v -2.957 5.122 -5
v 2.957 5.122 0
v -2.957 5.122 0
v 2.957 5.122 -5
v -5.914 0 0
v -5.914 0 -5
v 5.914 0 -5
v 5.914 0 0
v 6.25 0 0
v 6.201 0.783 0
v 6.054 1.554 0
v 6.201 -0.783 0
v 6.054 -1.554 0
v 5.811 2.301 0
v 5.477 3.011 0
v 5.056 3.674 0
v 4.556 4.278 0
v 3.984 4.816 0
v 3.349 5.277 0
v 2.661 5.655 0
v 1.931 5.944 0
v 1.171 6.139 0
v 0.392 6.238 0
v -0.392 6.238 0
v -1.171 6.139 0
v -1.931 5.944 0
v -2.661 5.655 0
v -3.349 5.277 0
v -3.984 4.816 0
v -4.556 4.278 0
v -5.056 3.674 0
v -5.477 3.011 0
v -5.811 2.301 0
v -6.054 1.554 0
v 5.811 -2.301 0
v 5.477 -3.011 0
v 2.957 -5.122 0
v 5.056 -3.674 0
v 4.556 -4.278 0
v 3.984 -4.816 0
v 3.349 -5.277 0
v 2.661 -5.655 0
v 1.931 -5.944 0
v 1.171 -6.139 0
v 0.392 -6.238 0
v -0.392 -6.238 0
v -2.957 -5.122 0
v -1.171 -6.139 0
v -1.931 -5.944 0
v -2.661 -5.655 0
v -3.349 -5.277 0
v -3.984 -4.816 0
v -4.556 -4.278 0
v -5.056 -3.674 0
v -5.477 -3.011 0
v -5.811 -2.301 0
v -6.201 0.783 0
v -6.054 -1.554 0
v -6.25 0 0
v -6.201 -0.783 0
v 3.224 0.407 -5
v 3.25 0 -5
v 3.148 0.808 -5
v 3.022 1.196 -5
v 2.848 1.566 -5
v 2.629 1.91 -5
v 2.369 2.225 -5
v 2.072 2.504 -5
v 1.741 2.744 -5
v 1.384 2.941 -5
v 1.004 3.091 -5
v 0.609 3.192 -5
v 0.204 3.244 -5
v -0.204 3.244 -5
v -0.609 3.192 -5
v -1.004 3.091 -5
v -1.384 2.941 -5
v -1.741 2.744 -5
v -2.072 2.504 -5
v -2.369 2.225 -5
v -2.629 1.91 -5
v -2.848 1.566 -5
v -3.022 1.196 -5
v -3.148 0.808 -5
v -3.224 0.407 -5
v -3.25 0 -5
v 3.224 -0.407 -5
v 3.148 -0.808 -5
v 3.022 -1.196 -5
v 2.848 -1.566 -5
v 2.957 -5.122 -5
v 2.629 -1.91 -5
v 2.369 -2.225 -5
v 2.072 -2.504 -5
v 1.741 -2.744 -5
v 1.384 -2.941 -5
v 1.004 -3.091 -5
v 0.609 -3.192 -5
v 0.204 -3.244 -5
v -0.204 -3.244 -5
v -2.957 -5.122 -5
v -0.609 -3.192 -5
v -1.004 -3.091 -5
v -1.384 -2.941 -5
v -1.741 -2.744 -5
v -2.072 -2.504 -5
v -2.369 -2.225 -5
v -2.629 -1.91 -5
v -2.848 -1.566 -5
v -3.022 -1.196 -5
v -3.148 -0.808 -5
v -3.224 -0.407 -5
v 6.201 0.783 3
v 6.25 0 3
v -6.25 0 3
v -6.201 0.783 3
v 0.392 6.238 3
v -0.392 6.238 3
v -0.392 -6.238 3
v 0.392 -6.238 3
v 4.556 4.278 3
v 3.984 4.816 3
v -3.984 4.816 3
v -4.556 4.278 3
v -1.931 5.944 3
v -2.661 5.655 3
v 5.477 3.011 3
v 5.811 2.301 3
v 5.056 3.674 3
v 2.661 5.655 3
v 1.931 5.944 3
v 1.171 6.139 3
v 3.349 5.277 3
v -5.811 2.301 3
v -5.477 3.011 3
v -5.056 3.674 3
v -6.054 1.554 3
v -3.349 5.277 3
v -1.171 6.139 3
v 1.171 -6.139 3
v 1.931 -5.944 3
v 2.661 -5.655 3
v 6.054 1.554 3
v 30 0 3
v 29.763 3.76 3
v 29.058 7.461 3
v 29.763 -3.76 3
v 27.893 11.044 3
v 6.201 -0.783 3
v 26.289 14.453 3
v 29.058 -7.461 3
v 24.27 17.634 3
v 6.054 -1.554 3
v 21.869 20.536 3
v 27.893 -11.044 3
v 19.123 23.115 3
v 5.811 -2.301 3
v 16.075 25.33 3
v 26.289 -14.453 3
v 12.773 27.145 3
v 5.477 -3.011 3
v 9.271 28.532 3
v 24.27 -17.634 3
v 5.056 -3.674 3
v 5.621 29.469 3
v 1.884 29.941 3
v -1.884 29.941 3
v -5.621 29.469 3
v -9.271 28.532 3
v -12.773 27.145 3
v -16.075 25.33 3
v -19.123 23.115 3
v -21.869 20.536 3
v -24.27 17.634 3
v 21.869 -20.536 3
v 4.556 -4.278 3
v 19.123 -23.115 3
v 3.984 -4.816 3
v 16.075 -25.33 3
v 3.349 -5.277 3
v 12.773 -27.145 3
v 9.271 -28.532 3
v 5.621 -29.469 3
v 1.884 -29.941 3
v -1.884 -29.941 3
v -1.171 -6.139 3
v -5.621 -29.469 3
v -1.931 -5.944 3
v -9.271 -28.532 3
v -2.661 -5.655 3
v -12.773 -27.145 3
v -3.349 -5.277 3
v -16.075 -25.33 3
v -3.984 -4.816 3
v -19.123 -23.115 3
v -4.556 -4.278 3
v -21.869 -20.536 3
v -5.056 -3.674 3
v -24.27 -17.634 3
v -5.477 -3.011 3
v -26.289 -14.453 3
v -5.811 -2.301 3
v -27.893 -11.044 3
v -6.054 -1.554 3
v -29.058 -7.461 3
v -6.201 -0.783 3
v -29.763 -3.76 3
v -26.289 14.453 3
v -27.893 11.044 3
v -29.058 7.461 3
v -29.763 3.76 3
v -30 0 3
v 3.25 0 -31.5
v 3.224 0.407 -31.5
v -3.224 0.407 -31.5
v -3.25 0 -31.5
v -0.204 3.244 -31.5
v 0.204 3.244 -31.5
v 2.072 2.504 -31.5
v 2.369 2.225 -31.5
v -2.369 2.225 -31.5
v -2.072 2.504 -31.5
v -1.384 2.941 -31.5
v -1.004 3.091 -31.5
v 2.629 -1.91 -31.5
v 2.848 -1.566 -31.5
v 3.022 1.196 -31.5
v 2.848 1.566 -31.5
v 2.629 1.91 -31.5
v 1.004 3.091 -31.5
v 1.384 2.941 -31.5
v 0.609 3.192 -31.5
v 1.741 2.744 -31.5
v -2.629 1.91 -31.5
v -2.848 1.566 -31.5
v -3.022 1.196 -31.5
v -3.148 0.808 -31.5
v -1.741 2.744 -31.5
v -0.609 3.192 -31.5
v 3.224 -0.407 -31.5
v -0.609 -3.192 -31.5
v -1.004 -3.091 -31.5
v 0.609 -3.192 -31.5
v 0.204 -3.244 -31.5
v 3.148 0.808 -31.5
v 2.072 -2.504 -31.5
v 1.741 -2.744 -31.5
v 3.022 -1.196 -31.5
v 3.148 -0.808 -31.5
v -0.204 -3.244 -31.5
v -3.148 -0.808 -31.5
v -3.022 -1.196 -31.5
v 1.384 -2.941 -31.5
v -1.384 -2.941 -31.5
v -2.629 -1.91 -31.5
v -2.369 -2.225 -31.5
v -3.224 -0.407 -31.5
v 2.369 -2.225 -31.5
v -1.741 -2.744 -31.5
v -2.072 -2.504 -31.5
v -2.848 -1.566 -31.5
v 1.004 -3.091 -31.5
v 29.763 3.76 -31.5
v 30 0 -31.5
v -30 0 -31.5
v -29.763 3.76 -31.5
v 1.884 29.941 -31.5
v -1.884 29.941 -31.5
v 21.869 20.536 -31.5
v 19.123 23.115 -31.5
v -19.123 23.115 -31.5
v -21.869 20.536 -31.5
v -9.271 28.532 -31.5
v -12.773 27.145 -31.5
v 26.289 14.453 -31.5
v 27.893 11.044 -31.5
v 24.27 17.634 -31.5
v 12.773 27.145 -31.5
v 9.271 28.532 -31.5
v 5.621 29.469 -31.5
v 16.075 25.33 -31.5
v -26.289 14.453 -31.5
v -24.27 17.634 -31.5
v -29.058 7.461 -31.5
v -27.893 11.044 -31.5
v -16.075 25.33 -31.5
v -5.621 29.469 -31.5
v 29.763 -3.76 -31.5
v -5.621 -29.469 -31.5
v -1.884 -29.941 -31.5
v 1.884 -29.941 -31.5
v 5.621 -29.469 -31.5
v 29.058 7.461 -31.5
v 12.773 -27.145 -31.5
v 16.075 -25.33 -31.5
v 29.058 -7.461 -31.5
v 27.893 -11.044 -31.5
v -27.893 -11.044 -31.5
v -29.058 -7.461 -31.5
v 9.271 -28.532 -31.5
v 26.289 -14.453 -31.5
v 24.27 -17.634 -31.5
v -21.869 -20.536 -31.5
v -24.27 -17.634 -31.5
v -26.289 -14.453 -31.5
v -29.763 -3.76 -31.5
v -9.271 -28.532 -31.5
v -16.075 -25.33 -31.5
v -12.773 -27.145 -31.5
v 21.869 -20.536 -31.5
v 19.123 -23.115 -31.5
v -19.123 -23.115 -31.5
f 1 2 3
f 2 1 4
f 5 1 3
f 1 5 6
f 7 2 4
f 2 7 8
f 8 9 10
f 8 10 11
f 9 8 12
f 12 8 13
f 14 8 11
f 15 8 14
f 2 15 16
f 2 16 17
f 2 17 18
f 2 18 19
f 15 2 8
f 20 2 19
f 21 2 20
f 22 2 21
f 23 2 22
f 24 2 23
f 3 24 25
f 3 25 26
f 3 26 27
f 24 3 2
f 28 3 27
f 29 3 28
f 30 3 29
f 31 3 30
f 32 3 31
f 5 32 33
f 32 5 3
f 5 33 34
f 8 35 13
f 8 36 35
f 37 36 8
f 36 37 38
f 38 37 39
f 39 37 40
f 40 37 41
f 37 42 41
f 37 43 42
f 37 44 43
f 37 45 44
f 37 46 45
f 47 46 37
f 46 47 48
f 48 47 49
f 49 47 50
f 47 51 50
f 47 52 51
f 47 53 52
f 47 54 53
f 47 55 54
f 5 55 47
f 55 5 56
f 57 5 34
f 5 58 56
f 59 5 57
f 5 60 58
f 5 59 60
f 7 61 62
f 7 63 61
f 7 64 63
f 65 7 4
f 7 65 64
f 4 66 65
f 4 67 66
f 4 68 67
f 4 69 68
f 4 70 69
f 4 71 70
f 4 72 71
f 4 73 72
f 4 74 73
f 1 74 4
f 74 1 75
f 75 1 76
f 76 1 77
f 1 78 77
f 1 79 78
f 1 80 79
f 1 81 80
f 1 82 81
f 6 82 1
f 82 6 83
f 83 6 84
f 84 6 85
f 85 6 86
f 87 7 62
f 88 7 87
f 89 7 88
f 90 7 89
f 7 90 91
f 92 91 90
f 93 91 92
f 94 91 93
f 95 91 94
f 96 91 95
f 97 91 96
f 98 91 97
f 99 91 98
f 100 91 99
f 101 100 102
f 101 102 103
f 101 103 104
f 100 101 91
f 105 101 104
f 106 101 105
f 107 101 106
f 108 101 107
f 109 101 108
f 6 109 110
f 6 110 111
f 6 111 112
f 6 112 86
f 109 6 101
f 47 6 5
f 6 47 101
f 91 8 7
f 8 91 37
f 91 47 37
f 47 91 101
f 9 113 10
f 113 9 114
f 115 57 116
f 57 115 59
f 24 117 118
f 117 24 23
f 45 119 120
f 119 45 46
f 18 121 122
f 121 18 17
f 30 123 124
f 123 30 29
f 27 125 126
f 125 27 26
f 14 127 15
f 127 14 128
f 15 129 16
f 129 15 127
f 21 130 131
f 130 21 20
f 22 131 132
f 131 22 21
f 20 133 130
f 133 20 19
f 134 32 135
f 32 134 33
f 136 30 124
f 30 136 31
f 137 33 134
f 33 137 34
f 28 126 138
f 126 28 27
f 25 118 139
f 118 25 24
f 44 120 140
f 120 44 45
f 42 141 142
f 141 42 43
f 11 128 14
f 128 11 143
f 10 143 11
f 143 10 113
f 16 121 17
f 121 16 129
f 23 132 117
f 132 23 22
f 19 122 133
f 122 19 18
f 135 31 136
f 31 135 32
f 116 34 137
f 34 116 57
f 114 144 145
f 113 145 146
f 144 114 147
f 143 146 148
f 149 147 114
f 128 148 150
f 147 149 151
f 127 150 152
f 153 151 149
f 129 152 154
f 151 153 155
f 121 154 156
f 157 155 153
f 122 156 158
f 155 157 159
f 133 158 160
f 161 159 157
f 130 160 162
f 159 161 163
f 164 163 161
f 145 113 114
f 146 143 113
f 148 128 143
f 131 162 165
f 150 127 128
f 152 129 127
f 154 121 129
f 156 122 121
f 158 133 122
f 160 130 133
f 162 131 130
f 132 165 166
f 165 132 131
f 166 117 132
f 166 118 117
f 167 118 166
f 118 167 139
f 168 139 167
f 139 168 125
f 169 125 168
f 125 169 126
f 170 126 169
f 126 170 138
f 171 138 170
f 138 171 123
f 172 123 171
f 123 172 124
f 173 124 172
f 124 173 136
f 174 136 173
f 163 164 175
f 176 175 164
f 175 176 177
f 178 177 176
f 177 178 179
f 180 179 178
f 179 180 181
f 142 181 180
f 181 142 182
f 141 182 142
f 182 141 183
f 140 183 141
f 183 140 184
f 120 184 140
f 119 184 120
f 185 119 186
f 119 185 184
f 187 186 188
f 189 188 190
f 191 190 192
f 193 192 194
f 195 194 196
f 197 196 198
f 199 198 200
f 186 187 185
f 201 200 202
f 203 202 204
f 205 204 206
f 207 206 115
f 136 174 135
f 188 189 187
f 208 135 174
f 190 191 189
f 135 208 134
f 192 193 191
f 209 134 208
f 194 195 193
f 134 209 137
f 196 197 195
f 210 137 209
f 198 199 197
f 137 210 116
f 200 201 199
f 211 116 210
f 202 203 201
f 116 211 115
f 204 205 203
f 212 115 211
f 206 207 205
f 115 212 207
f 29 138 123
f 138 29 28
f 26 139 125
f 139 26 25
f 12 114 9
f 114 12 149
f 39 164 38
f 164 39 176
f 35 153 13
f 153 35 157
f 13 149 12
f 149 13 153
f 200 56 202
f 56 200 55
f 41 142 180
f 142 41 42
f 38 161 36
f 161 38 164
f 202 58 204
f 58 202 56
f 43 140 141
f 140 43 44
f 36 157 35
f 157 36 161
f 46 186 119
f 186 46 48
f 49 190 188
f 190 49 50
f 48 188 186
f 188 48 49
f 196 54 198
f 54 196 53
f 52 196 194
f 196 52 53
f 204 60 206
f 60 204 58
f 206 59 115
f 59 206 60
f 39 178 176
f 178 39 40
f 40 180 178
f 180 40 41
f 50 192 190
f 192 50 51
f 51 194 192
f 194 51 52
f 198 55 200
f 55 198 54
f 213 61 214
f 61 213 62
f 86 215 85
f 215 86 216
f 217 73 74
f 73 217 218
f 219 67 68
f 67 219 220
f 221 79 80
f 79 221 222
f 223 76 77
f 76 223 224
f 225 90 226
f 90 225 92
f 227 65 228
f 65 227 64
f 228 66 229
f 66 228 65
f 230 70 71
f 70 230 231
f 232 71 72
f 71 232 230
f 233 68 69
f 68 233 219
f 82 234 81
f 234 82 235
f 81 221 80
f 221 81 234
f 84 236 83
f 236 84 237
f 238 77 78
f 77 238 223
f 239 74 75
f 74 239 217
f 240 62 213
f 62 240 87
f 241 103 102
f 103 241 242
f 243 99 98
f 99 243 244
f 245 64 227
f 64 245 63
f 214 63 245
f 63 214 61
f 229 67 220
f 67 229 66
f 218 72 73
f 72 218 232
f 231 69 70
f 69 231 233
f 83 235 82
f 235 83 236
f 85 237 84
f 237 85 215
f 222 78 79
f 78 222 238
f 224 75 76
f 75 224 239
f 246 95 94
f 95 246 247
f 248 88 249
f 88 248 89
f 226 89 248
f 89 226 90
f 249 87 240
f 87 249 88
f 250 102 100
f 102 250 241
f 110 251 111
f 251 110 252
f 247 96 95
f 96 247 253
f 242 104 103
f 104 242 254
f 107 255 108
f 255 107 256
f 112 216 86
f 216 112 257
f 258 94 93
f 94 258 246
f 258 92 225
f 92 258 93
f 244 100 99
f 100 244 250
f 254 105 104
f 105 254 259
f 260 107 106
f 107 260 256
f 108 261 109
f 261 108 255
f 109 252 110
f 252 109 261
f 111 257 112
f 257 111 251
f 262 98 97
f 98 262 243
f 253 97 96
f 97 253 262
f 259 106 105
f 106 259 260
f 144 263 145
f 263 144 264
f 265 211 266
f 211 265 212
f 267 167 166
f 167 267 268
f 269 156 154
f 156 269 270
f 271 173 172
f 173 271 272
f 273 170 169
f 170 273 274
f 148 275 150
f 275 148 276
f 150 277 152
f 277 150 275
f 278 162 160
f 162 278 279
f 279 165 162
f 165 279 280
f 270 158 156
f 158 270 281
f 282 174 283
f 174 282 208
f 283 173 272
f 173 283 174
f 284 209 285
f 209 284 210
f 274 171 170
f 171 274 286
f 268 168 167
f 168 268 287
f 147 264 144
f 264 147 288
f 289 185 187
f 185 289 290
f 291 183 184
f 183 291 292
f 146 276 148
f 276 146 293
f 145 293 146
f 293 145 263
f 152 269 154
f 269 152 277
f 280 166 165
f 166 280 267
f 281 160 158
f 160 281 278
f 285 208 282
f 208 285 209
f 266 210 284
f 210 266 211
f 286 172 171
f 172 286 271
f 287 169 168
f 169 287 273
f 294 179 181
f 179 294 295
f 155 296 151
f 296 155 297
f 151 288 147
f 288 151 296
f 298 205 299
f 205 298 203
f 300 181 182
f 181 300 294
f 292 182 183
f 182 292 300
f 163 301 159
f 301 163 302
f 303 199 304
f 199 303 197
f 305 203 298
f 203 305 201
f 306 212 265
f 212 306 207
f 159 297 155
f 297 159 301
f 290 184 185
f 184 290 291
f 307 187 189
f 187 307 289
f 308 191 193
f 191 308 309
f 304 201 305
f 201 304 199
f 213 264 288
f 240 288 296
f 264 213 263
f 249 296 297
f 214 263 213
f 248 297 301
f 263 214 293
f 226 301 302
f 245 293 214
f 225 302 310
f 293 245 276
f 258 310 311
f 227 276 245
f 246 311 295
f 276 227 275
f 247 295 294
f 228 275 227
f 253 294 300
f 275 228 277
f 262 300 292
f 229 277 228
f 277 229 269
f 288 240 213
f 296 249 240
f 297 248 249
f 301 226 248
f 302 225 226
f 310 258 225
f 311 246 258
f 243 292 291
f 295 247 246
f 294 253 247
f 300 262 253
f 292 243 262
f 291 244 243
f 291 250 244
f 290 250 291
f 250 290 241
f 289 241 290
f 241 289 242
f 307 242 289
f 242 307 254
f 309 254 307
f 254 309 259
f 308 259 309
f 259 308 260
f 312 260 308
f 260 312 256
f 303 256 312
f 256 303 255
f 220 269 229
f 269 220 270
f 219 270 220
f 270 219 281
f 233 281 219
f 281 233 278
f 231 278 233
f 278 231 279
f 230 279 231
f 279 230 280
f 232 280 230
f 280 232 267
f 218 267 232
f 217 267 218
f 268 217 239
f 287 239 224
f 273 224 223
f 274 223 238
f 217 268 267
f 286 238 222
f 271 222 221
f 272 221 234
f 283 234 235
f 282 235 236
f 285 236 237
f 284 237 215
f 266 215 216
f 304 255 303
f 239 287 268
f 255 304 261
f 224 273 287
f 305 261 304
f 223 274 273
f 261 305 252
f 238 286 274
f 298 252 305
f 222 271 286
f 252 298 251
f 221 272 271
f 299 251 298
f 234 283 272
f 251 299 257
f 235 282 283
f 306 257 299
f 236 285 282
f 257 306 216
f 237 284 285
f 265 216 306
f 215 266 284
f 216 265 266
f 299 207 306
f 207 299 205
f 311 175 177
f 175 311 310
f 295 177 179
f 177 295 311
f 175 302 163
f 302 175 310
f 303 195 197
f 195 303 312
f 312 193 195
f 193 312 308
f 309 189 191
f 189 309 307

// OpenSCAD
$fn = 50;


difference() {
	union() {
		translate(v = [0, 0, -31.5000000000]) {
			cylinder(h = 34.5000000000, r = 30.0000000000);
		}
	}
	union() {
		translate(v = [0, 0, 0]) {
			rotate(a = [0, 0, 0]) {
				difference() {
					union() {
						translate(v = [0, 0, -5]) {
							linear_extrude(height = 5) {
								polygon(points = [[5.9142500000, 0.0000000000], [2.9571250000, 5.1218907443], [-2.9571250000, 5.1218907443], [-5.9142500000, 0.0000000000], [-2.9571250000, -5.1218907443], [2.9571250000, -5.1218907443]]);
							}
						}
					}
					union();
				}
			}
		}
		#cylinder(h = 3, r = 6.2500000000);
		#translate(v = [0, 0, -100.0000000000]) {
			cylinder(h = 200, r = 3.2500000000);
		}
	}
}
